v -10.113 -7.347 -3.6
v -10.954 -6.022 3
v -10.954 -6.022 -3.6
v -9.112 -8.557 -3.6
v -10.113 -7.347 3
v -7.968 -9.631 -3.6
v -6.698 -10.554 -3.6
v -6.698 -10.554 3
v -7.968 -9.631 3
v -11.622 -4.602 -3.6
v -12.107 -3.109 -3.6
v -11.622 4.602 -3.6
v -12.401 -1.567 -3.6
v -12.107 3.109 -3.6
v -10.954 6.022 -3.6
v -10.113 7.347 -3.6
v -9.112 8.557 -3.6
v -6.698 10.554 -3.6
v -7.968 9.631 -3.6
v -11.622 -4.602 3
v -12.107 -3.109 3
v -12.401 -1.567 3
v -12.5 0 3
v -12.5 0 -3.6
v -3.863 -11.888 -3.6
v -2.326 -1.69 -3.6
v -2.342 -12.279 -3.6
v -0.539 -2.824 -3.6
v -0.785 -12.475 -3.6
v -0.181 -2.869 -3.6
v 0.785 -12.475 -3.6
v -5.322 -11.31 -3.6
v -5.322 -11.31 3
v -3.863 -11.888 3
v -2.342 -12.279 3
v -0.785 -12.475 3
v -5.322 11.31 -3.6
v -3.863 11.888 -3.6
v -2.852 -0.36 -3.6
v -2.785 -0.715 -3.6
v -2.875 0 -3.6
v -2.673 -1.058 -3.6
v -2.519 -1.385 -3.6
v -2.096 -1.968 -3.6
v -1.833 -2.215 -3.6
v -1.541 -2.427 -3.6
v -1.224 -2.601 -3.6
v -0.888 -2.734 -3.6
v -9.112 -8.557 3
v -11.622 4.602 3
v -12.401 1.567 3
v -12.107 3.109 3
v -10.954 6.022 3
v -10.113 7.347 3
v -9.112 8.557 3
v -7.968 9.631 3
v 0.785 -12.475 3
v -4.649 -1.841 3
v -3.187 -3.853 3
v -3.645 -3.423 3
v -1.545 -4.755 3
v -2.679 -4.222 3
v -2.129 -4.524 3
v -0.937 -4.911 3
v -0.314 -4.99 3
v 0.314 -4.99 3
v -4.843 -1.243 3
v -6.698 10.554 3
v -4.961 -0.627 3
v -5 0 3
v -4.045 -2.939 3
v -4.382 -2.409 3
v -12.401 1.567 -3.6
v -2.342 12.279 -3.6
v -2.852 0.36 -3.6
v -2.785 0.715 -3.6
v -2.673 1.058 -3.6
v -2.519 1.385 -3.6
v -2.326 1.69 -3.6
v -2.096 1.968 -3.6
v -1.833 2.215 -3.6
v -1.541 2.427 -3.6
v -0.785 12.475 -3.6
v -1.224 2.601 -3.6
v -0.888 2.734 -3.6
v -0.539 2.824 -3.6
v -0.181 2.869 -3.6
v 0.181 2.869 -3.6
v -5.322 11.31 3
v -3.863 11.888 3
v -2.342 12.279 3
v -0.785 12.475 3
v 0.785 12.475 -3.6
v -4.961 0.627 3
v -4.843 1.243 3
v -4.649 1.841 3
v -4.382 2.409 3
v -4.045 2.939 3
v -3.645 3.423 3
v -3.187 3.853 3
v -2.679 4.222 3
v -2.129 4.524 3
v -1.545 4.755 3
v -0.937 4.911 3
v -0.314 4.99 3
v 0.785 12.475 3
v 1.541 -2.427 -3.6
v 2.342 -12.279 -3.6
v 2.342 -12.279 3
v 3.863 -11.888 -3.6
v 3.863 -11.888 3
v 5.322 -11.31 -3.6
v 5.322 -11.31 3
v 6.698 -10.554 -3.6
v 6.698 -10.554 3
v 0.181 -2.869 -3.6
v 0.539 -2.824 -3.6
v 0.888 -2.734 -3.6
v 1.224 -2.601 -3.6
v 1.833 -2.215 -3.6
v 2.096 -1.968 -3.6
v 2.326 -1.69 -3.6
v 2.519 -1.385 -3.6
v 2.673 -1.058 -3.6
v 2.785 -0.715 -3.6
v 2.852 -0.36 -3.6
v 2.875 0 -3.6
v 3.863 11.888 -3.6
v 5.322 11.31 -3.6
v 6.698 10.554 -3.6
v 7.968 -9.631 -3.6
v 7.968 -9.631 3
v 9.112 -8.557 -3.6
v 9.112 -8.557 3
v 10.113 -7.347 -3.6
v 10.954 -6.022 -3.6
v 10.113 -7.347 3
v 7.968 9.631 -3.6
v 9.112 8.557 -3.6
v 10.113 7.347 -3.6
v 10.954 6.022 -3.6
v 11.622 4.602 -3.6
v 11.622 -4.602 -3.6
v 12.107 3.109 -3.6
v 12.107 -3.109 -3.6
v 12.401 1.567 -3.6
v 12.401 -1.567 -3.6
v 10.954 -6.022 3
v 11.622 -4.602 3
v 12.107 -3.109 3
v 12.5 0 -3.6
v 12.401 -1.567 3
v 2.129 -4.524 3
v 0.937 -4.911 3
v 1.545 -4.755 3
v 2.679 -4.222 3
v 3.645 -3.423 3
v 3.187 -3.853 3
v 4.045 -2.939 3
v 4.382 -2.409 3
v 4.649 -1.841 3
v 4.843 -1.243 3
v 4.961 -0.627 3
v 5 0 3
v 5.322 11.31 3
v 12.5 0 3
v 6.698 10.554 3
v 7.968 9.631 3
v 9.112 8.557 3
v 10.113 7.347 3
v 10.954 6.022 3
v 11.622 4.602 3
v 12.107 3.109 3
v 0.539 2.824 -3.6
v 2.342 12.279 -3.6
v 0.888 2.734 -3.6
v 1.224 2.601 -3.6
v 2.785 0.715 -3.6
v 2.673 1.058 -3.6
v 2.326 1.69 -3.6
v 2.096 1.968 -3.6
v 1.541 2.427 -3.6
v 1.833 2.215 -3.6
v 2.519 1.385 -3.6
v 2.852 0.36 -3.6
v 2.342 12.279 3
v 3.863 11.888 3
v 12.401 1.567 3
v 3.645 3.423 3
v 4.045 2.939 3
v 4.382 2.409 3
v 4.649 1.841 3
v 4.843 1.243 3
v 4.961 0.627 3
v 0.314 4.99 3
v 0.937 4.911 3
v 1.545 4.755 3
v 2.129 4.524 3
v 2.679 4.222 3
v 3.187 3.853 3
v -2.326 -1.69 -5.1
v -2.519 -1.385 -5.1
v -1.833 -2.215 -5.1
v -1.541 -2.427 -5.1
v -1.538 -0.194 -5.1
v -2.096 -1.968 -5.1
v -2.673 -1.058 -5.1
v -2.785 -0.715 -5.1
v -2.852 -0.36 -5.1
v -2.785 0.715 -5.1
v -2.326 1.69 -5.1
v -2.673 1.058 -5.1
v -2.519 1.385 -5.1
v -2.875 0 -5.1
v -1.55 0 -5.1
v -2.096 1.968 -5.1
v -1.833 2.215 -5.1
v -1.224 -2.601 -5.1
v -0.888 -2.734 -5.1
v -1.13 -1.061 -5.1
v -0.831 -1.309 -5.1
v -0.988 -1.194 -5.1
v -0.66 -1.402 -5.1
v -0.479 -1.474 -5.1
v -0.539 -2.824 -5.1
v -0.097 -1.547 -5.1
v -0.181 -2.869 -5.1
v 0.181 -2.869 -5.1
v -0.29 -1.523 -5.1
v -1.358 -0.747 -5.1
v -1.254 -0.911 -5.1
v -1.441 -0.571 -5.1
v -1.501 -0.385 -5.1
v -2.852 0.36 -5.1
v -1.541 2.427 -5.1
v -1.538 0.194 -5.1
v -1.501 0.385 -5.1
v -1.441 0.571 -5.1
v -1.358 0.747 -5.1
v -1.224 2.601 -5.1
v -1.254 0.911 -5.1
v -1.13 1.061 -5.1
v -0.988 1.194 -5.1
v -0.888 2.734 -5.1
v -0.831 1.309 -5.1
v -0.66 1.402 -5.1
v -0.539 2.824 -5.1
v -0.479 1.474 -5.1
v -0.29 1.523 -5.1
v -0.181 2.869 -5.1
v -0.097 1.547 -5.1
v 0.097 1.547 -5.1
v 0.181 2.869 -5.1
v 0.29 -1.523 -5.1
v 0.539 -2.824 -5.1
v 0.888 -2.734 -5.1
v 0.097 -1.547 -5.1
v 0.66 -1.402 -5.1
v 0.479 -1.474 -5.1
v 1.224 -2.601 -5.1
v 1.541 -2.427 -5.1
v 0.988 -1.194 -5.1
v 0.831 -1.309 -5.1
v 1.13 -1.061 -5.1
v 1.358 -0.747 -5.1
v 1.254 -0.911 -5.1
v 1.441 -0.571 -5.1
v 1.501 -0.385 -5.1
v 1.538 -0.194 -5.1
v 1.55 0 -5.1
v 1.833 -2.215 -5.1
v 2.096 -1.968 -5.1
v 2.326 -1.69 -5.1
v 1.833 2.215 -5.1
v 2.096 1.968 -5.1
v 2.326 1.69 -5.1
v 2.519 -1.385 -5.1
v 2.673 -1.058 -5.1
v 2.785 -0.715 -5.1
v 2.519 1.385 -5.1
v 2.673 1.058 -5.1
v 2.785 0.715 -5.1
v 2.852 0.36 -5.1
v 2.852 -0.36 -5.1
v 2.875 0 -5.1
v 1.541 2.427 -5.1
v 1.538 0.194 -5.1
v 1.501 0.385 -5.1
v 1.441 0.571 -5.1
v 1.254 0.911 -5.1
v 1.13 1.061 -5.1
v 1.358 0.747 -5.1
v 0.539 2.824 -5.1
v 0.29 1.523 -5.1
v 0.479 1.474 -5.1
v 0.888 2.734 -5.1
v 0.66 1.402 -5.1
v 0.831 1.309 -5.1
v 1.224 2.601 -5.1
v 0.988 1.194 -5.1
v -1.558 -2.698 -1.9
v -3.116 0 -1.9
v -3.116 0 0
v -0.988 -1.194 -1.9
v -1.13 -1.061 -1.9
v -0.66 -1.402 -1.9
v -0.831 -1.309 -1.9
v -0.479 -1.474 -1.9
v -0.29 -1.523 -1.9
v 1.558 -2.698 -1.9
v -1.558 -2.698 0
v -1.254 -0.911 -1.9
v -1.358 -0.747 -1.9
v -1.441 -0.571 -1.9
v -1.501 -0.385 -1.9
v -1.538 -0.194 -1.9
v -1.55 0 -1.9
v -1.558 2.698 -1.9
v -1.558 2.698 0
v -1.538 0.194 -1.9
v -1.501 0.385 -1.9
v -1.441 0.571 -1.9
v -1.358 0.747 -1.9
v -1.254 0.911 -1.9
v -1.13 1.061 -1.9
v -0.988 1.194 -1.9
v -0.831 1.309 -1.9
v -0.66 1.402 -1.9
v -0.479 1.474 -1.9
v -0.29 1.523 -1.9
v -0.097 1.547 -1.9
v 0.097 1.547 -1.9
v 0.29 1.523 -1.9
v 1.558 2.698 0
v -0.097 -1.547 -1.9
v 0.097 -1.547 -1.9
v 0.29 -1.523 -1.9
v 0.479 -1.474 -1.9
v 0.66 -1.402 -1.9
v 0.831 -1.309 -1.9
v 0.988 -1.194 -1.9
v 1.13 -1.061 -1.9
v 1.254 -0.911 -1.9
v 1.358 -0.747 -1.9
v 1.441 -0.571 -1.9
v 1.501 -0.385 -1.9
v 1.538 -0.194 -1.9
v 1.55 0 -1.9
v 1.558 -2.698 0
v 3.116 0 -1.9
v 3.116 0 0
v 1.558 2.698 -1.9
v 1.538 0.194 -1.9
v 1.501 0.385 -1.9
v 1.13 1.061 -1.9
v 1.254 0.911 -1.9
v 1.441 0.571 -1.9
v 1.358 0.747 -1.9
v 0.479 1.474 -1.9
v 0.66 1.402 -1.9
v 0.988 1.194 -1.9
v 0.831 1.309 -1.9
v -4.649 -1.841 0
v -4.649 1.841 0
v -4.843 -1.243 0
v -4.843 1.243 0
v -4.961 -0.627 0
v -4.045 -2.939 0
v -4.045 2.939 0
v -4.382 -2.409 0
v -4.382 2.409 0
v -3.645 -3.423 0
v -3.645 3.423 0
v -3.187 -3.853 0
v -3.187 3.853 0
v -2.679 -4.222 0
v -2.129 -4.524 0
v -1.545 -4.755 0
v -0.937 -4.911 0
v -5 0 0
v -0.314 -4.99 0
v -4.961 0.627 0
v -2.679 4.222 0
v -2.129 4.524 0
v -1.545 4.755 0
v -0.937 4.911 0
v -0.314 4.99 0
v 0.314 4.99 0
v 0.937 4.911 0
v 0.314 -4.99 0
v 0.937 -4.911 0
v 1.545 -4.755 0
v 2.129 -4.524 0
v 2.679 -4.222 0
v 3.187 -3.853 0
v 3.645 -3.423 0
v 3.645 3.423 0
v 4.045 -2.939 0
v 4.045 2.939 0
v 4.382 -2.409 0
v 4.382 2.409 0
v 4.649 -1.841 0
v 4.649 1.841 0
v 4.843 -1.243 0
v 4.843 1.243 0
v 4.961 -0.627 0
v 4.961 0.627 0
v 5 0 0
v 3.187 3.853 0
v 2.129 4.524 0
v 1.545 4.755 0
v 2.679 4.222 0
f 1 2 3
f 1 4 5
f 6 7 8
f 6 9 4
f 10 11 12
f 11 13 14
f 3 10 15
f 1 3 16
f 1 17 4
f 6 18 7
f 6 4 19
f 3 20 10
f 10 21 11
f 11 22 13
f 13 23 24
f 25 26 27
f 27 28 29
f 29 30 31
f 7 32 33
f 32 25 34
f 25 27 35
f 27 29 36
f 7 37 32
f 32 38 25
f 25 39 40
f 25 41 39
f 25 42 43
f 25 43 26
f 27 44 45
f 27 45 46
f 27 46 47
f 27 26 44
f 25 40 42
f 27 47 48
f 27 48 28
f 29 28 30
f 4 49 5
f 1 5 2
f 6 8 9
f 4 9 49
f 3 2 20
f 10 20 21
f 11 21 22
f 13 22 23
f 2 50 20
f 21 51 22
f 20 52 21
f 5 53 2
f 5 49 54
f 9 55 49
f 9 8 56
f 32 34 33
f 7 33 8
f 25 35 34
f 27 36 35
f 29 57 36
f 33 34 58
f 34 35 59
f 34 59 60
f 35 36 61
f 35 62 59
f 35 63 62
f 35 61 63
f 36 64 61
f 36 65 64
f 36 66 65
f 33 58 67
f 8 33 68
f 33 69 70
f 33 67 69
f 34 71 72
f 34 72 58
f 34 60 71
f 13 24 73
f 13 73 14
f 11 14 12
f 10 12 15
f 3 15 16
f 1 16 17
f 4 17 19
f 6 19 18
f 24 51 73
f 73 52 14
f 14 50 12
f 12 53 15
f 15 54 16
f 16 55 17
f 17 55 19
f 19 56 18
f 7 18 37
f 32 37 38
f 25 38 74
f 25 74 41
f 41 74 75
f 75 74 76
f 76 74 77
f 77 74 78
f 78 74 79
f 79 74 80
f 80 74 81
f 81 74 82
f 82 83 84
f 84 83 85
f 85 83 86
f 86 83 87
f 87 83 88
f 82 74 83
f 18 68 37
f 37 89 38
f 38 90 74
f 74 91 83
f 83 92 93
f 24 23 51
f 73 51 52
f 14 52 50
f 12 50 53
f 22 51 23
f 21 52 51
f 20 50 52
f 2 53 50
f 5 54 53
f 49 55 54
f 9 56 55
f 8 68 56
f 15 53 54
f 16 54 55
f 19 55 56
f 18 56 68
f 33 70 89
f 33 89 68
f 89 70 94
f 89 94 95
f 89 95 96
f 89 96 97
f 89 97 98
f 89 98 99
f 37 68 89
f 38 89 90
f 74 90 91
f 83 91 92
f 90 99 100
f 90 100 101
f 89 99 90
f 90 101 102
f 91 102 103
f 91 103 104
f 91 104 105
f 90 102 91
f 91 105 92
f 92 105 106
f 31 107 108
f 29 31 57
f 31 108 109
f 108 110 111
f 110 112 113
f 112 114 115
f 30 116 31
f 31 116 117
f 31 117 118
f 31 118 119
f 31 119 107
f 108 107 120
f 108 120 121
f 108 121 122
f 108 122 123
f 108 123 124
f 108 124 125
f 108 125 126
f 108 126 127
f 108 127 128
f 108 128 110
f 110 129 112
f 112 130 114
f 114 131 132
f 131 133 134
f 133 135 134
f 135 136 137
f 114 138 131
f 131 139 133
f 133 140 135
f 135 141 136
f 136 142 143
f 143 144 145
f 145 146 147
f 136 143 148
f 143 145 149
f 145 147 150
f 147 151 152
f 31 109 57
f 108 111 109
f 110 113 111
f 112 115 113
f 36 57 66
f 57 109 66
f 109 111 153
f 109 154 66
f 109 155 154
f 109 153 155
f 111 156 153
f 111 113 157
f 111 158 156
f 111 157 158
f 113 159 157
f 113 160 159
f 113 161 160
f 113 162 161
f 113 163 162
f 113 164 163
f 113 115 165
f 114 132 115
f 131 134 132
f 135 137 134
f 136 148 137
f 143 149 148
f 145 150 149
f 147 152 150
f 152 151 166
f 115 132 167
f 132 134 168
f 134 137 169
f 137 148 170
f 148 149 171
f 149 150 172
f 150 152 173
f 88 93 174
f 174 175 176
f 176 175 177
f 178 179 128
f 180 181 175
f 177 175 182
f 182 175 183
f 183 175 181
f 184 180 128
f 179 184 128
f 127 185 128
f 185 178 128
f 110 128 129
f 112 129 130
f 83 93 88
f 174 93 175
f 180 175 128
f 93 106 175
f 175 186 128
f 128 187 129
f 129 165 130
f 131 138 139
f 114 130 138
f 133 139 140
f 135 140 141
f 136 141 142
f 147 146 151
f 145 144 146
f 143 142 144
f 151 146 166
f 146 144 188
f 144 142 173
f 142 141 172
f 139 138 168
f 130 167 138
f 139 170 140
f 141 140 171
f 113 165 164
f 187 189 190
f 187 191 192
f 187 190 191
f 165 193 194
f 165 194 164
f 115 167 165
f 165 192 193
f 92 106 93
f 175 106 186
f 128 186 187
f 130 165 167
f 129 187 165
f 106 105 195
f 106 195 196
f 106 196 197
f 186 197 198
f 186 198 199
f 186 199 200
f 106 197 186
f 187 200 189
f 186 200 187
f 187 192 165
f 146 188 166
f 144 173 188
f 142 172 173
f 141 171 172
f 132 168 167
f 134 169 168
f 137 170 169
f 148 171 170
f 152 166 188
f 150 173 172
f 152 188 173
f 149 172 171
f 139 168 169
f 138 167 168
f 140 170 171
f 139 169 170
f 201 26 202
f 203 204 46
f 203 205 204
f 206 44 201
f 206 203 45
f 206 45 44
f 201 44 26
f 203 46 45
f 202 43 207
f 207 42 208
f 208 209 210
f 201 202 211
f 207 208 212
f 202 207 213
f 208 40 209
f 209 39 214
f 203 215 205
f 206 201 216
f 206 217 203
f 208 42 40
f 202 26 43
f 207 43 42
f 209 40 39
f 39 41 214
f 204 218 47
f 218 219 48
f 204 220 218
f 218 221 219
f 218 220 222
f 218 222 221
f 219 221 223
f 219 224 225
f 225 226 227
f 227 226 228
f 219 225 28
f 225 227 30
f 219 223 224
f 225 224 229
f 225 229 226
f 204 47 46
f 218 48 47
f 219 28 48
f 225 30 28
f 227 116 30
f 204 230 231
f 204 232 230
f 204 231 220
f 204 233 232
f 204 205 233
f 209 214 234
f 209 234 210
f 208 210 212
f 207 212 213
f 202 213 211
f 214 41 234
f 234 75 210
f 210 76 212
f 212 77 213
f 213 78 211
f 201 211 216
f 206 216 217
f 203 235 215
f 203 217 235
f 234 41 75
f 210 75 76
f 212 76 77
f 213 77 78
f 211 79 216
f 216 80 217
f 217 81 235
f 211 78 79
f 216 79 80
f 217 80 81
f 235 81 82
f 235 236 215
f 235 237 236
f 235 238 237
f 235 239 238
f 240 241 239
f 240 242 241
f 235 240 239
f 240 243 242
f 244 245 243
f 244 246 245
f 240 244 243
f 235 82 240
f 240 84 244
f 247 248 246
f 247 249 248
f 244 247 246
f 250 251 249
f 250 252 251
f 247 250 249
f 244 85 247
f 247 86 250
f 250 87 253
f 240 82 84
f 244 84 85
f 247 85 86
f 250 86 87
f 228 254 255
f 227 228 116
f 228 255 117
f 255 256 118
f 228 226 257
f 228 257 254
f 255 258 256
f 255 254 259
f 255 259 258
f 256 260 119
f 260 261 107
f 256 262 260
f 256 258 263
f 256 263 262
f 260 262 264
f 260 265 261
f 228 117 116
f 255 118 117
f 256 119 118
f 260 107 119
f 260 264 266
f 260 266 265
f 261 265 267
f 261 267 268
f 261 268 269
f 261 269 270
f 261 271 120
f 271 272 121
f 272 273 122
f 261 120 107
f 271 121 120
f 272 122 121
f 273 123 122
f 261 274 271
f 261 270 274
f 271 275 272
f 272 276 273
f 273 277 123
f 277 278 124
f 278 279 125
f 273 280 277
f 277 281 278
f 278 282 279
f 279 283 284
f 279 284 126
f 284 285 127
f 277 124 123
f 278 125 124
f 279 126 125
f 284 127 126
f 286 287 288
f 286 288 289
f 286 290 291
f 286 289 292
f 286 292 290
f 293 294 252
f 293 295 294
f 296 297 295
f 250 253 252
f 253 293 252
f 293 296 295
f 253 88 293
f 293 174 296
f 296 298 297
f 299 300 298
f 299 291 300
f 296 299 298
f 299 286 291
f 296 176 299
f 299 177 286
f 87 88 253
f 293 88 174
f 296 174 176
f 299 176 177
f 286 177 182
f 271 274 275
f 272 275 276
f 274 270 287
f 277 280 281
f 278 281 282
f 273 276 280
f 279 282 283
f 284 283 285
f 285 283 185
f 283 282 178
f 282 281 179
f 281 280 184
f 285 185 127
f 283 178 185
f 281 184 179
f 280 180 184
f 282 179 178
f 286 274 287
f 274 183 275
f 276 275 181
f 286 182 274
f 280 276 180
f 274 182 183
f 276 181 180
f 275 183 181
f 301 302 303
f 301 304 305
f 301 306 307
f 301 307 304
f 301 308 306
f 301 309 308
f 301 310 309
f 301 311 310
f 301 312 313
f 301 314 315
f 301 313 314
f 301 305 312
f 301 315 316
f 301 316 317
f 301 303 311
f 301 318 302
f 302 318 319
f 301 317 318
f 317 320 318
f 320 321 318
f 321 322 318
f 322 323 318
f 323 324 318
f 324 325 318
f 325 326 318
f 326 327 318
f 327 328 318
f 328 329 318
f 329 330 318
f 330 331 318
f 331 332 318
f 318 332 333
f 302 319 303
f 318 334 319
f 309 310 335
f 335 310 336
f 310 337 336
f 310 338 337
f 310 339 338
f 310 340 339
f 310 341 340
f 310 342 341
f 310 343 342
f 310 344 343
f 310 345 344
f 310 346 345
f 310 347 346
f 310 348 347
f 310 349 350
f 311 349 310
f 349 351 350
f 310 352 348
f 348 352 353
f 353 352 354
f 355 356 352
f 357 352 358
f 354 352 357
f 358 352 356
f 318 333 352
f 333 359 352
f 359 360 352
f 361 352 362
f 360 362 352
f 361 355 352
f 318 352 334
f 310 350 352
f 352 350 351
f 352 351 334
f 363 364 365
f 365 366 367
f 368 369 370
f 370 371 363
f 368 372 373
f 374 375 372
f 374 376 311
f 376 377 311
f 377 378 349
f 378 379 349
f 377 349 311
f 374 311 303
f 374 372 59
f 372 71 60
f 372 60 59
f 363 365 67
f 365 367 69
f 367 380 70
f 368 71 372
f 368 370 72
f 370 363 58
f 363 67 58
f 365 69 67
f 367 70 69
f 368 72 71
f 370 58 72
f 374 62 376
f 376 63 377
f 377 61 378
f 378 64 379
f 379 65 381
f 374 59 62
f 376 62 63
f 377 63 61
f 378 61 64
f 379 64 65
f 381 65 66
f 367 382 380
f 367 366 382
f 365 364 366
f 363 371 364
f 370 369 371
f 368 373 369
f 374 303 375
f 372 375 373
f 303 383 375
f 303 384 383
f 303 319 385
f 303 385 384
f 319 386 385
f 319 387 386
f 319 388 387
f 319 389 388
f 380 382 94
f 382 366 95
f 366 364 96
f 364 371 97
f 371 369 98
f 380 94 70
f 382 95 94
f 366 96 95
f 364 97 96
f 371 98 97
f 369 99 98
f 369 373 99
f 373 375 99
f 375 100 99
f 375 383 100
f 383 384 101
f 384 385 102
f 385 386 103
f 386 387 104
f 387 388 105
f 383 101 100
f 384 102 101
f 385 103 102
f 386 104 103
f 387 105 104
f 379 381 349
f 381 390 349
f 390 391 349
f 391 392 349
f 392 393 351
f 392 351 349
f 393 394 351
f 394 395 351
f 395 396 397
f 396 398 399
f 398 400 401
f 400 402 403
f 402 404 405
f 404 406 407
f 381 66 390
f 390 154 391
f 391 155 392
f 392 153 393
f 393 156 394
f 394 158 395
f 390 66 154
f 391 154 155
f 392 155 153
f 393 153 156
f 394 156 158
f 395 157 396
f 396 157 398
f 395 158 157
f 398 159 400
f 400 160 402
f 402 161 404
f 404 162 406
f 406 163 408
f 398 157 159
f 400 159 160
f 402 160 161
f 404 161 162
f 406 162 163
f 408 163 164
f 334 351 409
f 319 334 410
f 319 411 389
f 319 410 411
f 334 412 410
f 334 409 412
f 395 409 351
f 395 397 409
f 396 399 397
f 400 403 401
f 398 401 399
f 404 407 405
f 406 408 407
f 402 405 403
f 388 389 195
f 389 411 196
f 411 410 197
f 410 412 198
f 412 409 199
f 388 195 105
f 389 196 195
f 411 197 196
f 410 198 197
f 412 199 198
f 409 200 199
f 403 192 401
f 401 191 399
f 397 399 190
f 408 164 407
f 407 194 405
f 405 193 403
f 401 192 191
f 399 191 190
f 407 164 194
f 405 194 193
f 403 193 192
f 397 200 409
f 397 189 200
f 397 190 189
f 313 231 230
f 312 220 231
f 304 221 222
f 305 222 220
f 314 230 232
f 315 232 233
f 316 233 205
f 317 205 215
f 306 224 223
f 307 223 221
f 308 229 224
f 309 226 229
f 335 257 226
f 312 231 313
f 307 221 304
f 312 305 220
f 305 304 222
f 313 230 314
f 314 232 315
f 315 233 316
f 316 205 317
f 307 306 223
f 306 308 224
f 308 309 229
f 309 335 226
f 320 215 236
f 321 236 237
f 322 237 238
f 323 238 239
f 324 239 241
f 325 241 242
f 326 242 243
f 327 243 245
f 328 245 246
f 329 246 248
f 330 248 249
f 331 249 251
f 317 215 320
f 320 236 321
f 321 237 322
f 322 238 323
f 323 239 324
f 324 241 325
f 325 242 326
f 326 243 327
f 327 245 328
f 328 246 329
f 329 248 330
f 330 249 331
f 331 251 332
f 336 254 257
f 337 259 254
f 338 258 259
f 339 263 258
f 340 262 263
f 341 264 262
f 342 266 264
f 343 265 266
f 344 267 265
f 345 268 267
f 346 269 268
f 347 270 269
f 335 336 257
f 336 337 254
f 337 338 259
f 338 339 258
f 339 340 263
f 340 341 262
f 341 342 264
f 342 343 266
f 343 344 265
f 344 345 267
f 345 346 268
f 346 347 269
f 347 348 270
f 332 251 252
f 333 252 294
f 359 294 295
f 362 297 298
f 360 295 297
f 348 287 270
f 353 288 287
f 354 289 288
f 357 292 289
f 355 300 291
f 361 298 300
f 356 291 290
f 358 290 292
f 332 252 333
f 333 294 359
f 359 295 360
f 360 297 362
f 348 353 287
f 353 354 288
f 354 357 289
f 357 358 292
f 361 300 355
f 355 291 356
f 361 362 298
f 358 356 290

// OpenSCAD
$fn = 50;


difference() {
	union() {
		translate(v = [0, 0, -3.6000000000]) {
			cylinder(h = 6.6000000000, r = 12.5000000000);
		}
		#translate(v = [0, 0, -5.1000000000]) {
			cylinder(h = 5.1000000000, r = 2.8750000000);
		}
	}
	union() {
		translate(v = [0, 0, 0]) {
			rotate(a = [0, 0, 0]) {
				difference() {
					union() {
						translate(v = [0, 0, -1.9000000000]) {
							linear_extrude(height = 1.9000000000) {
								polygon(points = [[3.1158000000, 0.0000000000], [1.5579000000, 2.6983619531], [-1.5579000000, 2.6983619531], [-3.1158000000, 0.0000000000], [-1.5579000000, -2.6983619531], [1.5579000000, -2.6983619531]]);
							}
						}
					}
					union();
				}
			}
		}
		#cylinder(h = 3, r = 5.0000000000);
		#translate(v = [0, 0, -100.0000000000]) {
			cylinder(h = 200, r = 1.5500000000);
		}
	}
}
